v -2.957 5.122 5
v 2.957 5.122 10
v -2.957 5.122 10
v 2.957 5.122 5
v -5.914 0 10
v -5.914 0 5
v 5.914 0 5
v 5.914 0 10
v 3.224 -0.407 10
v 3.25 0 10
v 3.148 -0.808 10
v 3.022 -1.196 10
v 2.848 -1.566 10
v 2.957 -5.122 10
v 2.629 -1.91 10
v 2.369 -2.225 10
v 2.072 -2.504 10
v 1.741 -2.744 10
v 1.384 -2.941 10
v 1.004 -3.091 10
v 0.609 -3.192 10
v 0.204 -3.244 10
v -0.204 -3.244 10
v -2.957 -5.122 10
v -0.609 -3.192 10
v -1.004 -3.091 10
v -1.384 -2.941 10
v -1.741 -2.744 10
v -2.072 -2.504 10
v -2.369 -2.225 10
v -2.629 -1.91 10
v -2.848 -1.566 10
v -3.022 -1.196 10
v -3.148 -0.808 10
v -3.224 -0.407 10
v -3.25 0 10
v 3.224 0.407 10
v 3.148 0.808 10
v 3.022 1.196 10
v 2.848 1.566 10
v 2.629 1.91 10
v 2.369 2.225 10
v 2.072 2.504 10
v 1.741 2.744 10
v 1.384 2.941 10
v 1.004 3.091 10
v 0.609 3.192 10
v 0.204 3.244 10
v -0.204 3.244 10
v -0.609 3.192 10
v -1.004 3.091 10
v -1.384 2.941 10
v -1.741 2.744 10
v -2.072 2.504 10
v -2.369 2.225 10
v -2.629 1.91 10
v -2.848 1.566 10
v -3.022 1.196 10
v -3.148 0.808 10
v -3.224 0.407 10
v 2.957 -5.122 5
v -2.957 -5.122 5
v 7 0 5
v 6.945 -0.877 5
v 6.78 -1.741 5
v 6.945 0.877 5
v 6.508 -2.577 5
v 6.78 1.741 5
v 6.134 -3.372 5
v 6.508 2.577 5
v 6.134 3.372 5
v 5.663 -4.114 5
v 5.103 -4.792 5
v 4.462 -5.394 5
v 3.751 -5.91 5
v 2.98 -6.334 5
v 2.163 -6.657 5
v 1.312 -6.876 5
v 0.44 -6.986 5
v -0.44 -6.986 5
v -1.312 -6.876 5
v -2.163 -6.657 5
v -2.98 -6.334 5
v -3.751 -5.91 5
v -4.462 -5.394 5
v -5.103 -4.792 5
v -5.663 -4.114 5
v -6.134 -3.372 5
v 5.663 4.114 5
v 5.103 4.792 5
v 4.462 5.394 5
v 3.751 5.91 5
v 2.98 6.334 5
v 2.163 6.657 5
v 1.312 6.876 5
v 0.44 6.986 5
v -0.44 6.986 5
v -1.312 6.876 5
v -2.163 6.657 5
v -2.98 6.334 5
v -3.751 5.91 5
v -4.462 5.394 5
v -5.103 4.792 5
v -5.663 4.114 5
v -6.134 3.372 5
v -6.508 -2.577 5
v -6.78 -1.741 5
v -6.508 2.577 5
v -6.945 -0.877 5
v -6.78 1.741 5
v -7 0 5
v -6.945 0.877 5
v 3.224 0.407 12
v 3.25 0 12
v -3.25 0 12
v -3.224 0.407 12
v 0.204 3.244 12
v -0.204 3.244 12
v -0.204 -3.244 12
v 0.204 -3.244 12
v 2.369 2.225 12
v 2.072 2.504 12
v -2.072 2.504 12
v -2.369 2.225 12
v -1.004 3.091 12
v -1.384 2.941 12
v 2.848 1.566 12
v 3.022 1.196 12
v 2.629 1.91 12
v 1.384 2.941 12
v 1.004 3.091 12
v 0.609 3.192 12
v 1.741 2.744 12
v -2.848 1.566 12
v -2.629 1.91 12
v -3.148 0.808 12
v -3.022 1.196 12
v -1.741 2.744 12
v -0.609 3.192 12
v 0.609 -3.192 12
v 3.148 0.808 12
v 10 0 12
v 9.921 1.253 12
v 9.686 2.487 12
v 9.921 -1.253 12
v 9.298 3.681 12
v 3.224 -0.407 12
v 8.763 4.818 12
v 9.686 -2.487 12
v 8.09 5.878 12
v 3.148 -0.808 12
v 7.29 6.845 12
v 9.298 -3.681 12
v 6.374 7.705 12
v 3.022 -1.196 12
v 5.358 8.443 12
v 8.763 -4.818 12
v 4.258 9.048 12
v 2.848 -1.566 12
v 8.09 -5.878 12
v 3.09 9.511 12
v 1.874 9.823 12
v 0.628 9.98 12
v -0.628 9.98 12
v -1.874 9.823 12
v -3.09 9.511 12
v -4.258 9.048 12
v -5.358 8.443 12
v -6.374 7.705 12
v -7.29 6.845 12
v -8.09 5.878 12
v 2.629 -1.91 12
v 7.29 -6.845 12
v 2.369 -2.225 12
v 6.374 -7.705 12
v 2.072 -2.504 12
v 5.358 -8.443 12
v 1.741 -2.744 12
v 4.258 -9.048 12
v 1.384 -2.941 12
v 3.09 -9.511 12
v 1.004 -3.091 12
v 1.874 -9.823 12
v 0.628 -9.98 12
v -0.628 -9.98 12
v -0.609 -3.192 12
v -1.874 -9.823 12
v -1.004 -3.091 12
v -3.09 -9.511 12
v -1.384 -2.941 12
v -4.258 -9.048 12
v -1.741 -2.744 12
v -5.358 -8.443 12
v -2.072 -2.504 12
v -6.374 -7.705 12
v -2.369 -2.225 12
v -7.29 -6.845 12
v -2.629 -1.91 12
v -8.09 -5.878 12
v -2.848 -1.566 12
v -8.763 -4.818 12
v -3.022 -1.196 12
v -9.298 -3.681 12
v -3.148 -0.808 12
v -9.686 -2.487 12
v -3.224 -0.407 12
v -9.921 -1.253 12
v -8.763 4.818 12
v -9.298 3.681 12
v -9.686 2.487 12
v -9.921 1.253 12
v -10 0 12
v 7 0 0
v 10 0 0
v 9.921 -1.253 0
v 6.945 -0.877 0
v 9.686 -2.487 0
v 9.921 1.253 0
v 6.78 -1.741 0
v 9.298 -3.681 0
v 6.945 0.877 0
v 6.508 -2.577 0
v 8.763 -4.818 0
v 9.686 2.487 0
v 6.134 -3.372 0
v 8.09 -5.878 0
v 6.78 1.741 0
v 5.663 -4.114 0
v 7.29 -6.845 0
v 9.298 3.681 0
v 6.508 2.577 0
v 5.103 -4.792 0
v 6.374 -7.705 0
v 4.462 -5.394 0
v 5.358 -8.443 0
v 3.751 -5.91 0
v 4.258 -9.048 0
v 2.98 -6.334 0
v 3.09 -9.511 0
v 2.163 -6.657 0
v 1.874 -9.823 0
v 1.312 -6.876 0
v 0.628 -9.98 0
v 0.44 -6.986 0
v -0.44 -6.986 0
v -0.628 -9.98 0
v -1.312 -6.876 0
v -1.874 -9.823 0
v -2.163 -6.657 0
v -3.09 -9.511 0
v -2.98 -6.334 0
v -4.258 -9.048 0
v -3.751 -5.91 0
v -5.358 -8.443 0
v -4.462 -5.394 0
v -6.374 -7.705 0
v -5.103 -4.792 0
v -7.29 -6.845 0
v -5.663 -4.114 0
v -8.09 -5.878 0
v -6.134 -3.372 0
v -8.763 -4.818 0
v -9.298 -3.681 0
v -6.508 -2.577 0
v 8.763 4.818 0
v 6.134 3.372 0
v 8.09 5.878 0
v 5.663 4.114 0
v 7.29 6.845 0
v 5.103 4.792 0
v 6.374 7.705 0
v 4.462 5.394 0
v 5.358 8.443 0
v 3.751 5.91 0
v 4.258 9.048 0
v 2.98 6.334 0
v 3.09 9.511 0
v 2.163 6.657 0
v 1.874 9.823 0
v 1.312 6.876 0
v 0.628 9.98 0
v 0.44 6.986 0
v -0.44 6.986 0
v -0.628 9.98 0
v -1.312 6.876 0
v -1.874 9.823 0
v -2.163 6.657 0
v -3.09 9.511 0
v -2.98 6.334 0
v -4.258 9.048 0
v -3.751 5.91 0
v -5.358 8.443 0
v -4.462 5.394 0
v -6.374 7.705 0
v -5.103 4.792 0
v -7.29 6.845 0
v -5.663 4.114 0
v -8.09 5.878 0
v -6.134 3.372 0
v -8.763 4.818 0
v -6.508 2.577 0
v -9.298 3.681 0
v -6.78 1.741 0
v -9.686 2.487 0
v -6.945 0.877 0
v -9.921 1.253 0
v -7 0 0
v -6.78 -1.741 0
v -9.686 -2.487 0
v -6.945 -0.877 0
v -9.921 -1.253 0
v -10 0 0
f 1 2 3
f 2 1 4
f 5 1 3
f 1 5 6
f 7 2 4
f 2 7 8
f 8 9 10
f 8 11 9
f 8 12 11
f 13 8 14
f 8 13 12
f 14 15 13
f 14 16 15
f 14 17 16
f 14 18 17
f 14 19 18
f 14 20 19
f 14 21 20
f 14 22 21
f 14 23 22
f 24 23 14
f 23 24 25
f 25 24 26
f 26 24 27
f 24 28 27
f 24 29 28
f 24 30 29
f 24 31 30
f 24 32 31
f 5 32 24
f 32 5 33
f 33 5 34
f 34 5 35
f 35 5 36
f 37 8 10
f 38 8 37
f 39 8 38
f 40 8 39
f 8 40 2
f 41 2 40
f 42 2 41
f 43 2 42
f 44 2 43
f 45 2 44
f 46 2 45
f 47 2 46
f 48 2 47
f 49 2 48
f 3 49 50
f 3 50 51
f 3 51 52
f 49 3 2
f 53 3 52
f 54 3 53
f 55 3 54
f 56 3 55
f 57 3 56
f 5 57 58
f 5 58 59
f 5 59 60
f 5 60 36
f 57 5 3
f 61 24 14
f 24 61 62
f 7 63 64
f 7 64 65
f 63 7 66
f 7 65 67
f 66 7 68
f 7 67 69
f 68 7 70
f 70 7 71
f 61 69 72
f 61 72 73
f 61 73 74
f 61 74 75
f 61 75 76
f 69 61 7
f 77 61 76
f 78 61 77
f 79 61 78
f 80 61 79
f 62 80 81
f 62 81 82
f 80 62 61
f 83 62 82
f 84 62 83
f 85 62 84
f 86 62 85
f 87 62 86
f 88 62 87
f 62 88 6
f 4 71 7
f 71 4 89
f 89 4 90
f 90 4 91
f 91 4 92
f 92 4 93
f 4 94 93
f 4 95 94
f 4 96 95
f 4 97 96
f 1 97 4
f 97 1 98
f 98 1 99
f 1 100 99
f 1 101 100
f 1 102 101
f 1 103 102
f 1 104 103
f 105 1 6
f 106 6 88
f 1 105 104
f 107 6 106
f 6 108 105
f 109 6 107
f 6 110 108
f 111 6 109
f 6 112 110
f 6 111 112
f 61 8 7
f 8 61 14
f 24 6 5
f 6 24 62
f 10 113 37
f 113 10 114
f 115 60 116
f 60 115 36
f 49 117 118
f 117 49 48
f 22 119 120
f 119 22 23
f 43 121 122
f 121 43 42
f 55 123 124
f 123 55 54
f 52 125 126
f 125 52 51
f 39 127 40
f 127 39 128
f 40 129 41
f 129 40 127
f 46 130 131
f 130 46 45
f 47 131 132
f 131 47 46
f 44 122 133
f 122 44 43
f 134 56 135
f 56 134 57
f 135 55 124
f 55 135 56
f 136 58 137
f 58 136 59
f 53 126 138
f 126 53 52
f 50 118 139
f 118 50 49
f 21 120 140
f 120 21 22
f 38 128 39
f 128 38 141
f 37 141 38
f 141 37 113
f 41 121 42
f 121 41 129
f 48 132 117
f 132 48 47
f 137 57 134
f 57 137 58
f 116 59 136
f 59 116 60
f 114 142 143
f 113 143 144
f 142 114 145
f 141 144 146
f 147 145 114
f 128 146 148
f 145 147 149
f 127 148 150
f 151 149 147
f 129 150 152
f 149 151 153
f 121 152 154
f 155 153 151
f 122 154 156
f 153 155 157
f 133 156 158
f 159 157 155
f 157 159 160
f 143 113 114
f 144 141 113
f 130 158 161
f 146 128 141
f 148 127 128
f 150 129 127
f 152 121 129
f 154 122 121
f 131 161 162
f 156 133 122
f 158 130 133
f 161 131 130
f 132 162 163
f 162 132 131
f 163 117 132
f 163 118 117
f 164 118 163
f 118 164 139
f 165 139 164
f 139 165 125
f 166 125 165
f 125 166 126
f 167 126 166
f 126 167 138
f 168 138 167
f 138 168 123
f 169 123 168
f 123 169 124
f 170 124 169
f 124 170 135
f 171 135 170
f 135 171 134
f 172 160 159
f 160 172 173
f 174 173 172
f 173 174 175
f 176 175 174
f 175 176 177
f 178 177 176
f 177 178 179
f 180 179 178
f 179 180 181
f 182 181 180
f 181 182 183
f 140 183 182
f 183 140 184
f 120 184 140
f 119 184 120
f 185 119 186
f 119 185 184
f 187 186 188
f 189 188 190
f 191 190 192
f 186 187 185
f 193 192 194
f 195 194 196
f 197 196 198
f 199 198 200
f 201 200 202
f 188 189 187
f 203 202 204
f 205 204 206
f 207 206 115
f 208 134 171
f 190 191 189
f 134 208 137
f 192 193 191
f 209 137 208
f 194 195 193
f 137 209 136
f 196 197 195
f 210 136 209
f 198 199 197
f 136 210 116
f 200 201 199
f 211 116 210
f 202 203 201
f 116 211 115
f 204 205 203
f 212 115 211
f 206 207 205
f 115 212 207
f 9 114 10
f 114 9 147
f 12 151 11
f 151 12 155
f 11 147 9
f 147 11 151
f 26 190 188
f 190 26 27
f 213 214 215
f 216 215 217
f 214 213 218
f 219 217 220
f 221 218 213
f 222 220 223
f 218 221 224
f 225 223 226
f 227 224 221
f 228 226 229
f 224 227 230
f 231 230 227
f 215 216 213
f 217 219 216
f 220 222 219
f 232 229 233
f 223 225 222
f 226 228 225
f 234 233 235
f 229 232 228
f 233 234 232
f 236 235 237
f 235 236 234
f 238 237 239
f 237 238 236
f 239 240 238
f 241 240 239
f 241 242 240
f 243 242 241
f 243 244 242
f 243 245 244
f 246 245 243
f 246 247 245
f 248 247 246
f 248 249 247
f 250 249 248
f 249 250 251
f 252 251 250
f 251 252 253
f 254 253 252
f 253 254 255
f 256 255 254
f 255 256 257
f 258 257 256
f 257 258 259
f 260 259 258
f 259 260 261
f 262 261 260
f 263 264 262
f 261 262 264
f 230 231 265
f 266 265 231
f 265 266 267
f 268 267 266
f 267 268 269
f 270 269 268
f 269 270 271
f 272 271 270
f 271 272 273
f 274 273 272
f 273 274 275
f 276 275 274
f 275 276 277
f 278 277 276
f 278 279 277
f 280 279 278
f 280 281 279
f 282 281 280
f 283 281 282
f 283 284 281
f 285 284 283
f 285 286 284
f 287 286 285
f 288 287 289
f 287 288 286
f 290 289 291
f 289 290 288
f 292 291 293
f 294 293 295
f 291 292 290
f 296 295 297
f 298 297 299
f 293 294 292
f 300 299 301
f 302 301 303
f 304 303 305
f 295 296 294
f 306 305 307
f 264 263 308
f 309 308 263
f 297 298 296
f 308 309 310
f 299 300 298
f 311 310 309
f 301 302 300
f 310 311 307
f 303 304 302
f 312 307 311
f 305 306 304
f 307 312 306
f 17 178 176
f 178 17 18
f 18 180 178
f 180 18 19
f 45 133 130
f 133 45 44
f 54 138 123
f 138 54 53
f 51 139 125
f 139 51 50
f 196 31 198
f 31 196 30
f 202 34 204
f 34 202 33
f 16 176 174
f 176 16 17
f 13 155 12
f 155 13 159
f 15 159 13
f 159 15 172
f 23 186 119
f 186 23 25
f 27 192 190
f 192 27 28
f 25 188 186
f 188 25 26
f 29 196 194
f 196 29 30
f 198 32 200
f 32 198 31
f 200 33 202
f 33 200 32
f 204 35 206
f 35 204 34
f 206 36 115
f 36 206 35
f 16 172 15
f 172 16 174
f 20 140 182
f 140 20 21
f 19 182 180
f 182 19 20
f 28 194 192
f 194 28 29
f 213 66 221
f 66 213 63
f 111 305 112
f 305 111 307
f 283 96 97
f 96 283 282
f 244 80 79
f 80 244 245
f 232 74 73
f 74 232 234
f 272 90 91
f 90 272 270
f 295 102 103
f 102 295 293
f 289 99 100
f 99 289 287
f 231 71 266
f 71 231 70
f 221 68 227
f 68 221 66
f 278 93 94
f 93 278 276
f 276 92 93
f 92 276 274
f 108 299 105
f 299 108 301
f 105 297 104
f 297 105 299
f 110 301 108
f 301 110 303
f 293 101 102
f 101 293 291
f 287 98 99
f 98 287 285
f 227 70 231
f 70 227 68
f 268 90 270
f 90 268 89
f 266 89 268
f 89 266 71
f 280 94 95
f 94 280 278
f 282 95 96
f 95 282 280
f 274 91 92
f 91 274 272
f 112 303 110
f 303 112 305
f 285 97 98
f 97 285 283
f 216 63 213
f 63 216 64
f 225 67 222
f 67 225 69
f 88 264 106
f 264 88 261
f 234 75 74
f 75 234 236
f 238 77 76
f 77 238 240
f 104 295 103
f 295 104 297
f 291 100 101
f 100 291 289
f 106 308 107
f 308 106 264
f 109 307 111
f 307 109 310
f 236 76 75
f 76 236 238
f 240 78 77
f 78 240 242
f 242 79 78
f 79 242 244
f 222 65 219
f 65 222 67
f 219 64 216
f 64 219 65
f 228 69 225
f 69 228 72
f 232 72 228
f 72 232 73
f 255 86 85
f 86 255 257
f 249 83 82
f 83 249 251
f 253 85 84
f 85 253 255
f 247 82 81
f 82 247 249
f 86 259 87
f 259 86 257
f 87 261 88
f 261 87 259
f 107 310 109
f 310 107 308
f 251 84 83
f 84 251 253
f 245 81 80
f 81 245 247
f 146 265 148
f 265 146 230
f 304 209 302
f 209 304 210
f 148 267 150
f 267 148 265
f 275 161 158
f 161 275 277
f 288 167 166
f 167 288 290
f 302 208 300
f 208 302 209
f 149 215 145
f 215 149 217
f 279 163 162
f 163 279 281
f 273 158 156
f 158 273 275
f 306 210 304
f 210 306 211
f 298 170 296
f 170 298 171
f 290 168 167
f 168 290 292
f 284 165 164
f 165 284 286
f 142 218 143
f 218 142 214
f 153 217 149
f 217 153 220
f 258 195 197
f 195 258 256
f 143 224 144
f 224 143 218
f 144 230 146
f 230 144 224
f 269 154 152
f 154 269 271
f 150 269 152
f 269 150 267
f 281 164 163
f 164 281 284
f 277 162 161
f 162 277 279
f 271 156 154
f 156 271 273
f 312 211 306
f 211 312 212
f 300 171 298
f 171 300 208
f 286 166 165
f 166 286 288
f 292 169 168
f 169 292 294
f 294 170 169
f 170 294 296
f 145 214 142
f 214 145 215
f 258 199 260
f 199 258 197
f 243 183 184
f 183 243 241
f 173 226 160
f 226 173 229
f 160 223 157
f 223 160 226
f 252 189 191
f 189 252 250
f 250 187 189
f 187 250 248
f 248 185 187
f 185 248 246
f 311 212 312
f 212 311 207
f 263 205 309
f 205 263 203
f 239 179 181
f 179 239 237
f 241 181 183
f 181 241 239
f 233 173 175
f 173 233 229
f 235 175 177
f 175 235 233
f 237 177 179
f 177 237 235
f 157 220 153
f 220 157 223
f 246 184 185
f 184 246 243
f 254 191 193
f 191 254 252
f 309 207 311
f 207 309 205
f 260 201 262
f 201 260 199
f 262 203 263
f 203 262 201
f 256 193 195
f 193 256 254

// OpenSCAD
$fn = 50;


difference() {
	union() {
		cylinder(h = 12, r = 10.0000000000);
	}
	union() {
		translate(v = [0, 0, 10]) {
			rotate(a = [0, 0, 0]) {
				difference() {
					union() {
						translate(v = [0, 0, -5]) {
							linear_extrude(height = 5) {
								polygon(points = [[5.9142500000, 0.0000000000], [2.9571250000, 5.1218907443], [-2.9571250000, 5.1218907443], [-5.9142500000, 0.0000000000], [-2.9571250000, -5.1218907443], [2.9571250000, -5.1218907443]]);
							}
						}
					}
					union();
				}
			}
		}
		cylinder(h = 12, r = 3.2500000000);
		cylinder(h = 5, r = 7.0000000000);
	}
}
